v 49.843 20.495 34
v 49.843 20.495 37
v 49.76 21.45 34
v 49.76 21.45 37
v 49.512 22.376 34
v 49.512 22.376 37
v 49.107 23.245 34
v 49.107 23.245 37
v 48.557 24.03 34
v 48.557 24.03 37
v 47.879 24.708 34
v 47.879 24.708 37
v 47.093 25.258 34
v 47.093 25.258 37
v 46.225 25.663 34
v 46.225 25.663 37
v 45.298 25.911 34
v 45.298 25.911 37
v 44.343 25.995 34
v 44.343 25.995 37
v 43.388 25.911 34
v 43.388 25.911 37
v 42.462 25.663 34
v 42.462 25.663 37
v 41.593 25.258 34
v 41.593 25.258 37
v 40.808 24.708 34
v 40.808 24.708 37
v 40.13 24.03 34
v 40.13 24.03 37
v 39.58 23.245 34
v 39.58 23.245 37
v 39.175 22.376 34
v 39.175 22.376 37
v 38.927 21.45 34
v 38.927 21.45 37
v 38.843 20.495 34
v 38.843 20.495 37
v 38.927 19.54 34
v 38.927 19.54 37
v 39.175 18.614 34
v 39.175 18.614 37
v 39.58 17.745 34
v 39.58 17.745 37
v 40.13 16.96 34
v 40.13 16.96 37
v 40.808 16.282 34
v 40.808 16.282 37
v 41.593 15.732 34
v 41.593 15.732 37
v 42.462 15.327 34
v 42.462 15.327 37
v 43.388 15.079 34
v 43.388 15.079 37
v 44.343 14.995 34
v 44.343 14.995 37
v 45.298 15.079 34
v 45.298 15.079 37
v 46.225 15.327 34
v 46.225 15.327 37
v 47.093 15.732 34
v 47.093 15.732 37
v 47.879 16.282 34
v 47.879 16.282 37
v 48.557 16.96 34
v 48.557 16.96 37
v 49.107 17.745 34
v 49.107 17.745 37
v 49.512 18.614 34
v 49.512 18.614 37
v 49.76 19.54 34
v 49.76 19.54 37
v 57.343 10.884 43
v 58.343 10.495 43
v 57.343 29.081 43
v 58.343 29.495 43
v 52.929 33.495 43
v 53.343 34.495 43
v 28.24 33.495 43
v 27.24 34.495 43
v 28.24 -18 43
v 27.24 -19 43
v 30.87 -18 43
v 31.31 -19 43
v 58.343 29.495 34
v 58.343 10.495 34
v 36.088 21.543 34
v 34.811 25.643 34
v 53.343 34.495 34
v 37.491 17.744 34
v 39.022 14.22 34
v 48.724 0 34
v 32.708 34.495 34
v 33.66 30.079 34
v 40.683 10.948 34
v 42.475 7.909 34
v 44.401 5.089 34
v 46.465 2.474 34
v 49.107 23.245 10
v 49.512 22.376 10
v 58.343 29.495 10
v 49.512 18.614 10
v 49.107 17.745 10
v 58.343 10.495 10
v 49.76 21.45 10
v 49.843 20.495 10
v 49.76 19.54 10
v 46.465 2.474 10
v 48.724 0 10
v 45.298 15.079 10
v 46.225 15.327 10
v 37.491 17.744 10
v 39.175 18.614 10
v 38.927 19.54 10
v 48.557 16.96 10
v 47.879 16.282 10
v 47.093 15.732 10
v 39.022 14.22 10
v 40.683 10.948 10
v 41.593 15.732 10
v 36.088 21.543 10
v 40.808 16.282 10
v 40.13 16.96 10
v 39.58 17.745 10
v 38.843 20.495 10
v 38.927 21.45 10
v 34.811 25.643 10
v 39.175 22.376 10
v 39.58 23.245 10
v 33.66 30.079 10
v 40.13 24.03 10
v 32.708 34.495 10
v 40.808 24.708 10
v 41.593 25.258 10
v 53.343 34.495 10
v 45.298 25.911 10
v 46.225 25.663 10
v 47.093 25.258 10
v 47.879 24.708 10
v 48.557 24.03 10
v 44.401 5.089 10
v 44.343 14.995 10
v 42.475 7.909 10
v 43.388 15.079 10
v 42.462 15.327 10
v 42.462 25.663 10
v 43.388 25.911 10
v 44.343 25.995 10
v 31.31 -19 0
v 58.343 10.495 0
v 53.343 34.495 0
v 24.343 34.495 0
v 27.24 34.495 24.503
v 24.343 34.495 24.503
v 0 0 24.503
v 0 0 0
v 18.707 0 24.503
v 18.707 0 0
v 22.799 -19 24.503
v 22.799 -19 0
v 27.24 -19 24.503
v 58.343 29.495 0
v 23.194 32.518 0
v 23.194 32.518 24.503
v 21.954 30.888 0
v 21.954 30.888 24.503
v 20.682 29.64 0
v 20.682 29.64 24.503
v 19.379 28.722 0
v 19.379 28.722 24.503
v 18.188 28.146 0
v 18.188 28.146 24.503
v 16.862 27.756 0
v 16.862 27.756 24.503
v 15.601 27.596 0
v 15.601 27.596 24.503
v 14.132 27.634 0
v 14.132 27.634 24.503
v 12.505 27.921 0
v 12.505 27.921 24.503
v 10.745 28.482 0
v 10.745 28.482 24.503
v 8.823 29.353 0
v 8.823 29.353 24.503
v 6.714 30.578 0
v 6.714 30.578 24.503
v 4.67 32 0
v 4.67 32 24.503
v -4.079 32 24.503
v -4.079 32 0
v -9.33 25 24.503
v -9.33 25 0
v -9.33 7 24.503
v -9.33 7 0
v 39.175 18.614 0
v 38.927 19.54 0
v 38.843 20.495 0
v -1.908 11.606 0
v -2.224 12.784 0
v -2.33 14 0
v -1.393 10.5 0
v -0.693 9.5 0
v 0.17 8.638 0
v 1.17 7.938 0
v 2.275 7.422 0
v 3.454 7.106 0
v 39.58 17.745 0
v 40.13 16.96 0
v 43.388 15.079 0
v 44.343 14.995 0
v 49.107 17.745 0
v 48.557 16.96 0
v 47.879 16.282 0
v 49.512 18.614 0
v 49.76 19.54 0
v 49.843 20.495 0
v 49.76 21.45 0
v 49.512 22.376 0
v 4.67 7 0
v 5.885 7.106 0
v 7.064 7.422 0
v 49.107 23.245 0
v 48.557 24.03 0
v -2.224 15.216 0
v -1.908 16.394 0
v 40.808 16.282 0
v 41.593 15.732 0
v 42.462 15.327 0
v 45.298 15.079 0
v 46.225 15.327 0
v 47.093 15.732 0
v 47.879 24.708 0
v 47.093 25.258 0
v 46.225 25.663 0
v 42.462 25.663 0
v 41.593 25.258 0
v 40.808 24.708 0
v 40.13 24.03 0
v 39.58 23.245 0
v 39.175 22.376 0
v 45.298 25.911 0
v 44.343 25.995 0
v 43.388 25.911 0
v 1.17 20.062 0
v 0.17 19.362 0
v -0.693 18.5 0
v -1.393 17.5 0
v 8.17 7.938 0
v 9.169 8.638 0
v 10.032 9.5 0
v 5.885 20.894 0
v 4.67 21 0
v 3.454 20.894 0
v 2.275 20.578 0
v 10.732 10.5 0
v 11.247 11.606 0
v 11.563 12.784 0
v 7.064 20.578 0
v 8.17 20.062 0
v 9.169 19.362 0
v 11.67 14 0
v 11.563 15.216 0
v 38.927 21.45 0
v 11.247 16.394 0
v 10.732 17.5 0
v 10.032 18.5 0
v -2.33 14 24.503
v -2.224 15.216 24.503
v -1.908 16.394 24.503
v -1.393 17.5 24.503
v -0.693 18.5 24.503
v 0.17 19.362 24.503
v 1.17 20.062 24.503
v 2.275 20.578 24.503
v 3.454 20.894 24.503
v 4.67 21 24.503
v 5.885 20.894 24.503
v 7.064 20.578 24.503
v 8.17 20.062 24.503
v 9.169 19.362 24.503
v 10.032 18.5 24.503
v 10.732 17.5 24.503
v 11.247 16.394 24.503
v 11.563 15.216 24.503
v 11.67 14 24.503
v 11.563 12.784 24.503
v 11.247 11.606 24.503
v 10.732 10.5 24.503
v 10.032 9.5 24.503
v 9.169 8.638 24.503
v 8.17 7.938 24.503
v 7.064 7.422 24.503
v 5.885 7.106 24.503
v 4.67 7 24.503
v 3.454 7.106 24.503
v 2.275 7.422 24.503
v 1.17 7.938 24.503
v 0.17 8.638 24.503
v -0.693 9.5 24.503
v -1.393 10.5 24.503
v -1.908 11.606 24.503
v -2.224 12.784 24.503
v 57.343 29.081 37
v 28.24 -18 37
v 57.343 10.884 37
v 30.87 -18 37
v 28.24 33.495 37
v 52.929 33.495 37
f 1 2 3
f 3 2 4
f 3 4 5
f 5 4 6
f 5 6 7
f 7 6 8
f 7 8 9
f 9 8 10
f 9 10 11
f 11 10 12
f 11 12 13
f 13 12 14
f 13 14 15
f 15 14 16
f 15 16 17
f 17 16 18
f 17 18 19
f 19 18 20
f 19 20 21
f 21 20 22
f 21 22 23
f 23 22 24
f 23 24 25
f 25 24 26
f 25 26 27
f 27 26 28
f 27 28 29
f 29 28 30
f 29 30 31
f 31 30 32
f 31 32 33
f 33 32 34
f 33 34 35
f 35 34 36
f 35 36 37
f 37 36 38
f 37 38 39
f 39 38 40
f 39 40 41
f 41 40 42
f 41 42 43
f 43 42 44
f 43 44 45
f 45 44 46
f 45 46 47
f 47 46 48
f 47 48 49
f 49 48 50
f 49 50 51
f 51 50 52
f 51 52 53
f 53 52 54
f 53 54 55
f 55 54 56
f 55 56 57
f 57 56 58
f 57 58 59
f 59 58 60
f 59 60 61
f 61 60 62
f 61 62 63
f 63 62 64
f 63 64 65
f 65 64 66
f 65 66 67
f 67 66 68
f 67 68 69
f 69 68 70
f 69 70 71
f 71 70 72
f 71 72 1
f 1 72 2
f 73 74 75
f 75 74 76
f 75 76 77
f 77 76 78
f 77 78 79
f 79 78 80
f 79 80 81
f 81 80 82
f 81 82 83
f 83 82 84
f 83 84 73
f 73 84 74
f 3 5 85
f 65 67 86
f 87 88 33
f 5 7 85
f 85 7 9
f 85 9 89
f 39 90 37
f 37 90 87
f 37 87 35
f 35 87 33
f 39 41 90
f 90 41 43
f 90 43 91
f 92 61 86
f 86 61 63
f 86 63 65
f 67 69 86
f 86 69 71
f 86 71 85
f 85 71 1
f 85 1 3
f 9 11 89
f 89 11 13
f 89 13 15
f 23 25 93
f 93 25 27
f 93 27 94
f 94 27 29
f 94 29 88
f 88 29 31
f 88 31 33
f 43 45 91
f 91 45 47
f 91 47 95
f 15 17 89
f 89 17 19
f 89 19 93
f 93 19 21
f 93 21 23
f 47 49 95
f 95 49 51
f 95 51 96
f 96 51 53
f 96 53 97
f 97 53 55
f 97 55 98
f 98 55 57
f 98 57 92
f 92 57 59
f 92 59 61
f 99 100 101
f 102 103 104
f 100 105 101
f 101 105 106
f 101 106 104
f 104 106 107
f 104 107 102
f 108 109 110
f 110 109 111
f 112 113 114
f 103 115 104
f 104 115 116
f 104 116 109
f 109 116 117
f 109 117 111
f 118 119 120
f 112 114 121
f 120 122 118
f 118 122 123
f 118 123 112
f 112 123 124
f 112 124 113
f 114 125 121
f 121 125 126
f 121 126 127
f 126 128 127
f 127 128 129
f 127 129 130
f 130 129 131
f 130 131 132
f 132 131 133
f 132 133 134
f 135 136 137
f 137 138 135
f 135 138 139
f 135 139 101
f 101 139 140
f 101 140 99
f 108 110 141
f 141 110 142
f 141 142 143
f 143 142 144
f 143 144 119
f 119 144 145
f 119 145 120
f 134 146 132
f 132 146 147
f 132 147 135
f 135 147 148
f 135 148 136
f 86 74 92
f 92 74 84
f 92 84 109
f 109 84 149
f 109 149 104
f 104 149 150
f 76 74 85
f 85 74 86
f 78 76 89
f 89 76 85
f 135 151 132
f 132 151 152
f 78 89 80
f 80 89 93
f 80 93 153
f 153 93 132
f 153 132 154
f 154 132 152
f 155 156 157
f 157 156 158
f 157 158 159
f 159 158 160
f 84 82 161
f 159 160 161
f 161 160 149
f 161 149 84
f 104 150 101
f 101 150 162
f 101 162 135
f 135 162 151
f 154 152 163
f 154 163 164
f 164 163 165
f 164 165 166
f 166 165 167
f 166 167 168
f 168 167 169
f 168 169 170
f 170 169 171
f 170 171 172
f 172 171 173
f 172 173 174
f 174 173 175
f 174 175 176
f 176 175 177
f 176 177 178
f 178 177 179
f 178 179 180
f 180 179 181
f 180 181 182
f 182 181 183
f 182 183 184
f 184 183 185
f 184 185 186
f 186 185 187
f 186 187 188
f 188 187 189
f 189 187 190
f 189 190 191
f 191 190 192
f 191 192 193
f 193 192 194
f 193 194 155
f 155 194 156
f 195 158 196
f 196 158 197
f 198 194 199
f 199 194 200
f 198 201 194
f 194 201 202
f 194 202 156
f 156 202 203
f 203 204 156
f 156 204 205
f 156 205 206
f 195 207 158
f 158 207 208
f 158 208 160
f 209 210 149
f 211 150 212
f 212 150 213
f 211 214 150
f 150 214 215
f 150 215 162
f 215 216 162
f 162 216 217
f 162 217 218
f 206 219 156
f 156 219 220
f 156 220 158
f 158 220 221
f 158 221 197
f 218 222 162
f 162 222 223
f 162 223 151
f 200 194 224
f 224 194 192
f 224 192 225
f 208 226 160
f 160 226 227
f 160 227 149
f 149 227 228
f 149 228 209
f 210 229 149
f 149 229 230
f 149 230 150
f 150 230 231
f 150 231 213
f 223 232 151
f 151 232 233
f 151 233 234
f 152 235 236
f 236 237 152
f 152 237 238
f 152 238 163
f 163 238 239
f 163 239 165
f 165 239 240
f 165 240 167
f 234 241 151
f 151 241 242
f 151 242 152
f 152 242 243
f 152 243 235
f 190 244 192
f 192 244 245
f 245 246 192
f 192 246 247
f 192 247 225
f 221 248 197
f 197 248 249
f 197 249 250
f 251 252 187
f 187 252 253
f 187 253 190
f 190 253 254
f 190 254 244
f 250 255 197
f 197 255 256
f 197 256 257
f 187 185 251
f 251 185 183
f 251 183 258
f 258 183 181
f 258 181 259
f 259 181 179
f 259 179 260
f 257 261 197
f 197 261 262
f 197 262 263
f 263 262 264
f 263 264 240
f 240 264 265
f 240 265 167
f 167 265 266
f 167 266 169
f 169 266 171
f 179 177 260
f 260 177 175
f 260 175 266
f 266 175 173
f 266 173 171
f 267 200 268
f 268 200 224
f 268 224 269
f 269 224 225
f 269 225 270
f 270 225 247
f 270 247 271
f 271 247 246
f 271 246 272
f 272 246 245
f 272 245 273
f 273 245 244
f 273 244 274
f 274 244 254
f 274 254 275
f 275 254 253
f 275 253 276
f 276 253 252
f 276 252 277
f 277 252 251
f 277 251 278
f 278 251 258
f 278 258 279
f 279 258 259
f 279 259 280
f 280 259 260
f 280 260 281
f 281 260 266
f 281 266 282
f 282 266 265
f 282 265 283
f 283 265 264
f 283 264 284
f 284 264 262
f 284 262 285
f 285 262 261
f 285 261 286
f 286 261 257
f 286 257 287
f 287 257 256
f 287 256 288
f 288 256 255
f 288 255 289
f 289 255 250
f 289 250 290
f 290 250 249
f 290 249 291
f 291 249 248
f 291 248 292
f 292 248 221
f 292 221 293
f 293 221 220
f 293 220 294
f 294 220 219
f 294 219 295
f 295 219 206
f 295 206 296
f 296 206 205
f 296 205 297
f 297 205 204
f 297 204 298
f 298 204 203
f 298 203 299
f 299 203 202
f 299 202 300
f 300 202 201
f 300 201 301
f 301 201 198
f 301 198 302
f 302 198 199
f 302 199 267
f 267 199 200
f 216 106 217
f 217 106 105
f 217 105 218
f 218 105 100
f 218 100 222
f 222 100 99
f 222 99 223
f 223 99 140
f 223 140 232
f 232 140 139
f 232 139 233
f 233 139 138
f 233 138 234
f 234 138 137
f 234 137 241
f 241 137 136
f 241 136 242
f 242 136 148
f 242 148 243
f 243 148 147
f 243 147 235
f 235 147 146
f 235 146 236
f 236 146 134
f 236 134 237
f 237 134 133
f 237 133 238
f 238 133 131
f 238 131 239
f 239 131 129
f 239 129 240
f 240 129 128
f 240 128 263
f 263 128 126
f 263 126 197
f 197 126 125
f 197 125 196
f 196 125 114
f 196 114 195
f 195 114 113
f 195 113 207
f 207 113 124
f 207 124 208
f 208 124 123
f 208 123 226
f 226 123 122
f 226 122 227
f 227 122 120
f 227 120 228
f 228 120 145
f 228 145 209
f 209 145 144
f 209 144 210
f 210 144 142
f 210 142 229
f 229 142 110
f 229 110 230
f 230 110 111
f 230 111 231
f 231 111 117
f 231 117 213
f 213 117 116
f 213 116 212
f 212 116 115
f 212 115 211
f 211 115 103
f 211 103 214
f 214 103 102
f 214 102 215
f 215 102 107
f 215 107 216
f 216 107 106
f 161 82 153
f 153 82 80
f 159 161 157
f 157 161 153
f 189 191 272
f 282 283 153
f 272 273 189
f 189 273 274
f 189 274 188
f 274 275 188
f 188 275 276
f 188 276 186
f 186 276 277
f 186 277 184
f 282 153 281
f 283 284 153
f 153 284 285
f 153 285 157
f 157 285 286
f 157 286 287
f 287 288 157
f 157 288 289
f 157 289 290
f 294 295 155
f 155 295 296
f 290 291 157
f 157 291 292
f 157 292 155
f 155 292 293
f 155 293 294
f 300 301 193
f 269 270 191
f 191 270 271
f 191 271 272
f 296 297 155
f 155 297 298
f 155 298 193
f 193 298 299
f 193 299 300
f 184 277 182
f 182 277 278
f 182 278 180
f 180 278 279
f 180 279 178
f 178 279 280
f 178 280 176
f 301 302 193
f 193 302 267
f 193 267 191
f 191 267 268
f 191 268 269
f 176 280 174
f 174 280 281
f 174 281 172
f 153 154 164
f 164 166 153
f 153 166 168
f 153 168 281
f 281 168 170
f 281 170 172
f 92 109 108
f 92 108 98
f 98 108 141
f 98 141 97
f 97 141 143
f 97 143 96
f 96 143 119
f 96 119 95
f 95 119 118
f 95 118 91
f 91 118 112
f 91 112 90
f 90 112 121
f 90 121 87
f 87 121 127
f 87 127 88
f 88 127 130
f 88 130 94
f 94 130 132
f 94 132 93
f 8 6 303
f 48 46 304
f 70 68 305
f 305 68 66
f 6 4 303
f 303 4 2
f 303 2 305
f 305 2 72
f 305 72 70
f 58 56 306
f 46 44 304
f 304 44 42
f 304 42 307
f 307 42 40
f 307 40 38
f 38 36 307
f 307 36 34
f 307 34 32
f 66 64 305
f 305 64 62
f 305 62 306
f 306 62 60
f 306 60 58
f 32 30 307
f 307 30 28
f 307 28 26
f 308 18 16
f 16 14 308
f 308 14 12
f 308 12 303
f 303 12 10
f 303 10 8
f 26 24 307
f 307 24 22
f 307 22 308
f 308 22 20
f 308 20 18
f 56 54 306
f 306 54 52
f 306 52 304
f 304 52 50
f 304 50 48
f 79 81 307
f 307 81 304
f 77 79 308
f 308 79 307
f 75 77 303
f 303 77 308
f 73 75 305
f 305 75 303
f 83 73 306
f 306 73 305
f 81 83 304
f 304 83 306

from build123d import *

# Parameters (mm, degrees)
BOSS_EXTRUDE1_DEPTH     = 43
SKETCH2_R               = 7
CUT_EXTRUDE1_DEPTH      = 43
SKETCH3_R               = 5.5
CUT_EXTRUDE2_DEPTH      = 43
CUT_EXTRUDE3_DEPTH      = 81.267405813
CUT_EXTRUDE3_DEPTH_BACK = 81.267405813
SKETCH4_W               = 43.989032816
SKETCH4_H               = 19
SKETCH5_W               = 35.072240015
SKETCH5_H               = 24
CUT_EXTRUDE4_DEPTH      = 43
BOSS_EXTRUDE2_DEPTH     = 24
CUT_EXTRUDE5_DEPTH      = 6


with BuildPart() as part:
    # Sketch1 → Boss-Extrude1 (new body)
    with BuildSketch(Plane.XY):
        with BuildLine():
            Line((0, 0), (-9.330406061, 7))
            Line((-9.330406061, 7), (-9.330406061, 25))
            Line((-9.330406061, 25), (-4.078758954, 32))
            Line((-4.078758954, 32), (4.669593939, 32))
            add(Edge.make_bspline(
                [(4.669593939, 32), (17.970448987, 22.058553501), (24.343418505, 34.49495508)],
                knots=[0, 0, 0, 1, 1, 1], degree=2))
            Line((24.343418505, 34.49495508), (53.343418505, 34.49495508))
            Line((53.343418505, 34.49495508), (58.343418505, 29.49495508))
            Line((58.343418505, 29.49495508), (58.343418505, 10.49495508))
            Line((58.343418505, 10.49495508), (31.309807425, -19))
            Line((31.309807425, -19), (22.799304213, -19))
            Line((22.799304213, -19), (18.70656591, 0))
            Line((18.70656591, 0), (0, 0))
        make_face()
    extrude(amount=BOSS_EXTRUDE1_DEPTH)

    # Sketch2 → Cut-Extrude1 (cut)
    with BuildSketch(Plane(origin=(0, 0, 0), x_dir=(-1, 0, 0), z_dir=(0, 0, -1))):
        with Locations((-4.669593939, 14)):
            Circle(SKETCH2_R)
    extrude(amount=-CUT_EXTRUDE1_DEPTH, mode=Mode.SUBTRACT)

    # Sketch3 → Cut-Extrude2 (cut)
    with BuildSketch(Plane.XY.offset(43)):
        with Locations((44.343418505, 20.49495508)):
            Circle(SKETCH3_R)
    extrude(amount=-CUT_EXTRUDE2_DEPTH, mode=Mode.SUBTRACT)

    # Sketch4 → Cut-Extrude3 (cut, two sides: drawn at the far end of the back side and taken through both)
    with BuildSketch(Plane(origin=(0, 0, 0), x_dir=(1, 0, 0), z_dir=(0, 1, 0)).offset(-CUT_EXTRUDE3_DEPTH_BACK)):
        with Locations((5.245897655, -34.002948031)):
            Rectangle(SKETCH4_W, SKETCH4_H)
    extrude(amount=CUT_EXTRUDE3_DEPTH + CUT_EXTRUDE3_DEPTH_BACK, mode=Mode.SUBTRACT)

    # Sketch5 → Cut-Extrude4 (cut)
    with BuildSketch(Plane(origin=(0, 0, 0), x_dir=(1, 0, 0), z_dir=(0, 1, 0))):
        with Locations((50.243902929, -22)):
            Rectangle(SKETCH5_W, SKETCH5_H)
    extrude(amount=CUT_EXTRUDE4_DEPTH, mode=Mode.SUBTRACT)

    # Sketch6 → Boss-Extrude2 (add)
    with BuildSketch(Plane.XY.offset(10)):
        with BuildLine():
            Line((32.707782921, 34.49495508), (32.707782921, 0))
            Line((32.707782921, 0), (48.724263868, 0))
            add(Edge.make_bspline(
                [(48.724263868, 0), (39.533647592, 9.345830828), (35.169336989, 21.979196109), (32.707782921, 34.49495508)],
                knots=[0, 0, 0, 0, 1, 1, 1, 1], degree=3))
        make_face()
    extrude(amount=BOSS_EXTRUDE2_DEPTH)

    # 3DSketch1 → Cut-Extrude5 (cut)
    with BuildSketch(Plane(origin=(30.869867984, -18, 43), x_dir=(0.39376955076248915, 0.9192091932157269, 0), z_dir=(0, 0, 1))):
        Polygon((0, 0), (36.9748267, -12.961129751), (53.701528522, -5.795768579), (56.020931318, 0), (46.299237224, 22.694163546), (-1.035398889, 2.417018217), align=None)
    extrude(amount=-CUT_EXTRUDE5_DEPTH, mode=Mode.SUBTRACT)


solid = part.part
